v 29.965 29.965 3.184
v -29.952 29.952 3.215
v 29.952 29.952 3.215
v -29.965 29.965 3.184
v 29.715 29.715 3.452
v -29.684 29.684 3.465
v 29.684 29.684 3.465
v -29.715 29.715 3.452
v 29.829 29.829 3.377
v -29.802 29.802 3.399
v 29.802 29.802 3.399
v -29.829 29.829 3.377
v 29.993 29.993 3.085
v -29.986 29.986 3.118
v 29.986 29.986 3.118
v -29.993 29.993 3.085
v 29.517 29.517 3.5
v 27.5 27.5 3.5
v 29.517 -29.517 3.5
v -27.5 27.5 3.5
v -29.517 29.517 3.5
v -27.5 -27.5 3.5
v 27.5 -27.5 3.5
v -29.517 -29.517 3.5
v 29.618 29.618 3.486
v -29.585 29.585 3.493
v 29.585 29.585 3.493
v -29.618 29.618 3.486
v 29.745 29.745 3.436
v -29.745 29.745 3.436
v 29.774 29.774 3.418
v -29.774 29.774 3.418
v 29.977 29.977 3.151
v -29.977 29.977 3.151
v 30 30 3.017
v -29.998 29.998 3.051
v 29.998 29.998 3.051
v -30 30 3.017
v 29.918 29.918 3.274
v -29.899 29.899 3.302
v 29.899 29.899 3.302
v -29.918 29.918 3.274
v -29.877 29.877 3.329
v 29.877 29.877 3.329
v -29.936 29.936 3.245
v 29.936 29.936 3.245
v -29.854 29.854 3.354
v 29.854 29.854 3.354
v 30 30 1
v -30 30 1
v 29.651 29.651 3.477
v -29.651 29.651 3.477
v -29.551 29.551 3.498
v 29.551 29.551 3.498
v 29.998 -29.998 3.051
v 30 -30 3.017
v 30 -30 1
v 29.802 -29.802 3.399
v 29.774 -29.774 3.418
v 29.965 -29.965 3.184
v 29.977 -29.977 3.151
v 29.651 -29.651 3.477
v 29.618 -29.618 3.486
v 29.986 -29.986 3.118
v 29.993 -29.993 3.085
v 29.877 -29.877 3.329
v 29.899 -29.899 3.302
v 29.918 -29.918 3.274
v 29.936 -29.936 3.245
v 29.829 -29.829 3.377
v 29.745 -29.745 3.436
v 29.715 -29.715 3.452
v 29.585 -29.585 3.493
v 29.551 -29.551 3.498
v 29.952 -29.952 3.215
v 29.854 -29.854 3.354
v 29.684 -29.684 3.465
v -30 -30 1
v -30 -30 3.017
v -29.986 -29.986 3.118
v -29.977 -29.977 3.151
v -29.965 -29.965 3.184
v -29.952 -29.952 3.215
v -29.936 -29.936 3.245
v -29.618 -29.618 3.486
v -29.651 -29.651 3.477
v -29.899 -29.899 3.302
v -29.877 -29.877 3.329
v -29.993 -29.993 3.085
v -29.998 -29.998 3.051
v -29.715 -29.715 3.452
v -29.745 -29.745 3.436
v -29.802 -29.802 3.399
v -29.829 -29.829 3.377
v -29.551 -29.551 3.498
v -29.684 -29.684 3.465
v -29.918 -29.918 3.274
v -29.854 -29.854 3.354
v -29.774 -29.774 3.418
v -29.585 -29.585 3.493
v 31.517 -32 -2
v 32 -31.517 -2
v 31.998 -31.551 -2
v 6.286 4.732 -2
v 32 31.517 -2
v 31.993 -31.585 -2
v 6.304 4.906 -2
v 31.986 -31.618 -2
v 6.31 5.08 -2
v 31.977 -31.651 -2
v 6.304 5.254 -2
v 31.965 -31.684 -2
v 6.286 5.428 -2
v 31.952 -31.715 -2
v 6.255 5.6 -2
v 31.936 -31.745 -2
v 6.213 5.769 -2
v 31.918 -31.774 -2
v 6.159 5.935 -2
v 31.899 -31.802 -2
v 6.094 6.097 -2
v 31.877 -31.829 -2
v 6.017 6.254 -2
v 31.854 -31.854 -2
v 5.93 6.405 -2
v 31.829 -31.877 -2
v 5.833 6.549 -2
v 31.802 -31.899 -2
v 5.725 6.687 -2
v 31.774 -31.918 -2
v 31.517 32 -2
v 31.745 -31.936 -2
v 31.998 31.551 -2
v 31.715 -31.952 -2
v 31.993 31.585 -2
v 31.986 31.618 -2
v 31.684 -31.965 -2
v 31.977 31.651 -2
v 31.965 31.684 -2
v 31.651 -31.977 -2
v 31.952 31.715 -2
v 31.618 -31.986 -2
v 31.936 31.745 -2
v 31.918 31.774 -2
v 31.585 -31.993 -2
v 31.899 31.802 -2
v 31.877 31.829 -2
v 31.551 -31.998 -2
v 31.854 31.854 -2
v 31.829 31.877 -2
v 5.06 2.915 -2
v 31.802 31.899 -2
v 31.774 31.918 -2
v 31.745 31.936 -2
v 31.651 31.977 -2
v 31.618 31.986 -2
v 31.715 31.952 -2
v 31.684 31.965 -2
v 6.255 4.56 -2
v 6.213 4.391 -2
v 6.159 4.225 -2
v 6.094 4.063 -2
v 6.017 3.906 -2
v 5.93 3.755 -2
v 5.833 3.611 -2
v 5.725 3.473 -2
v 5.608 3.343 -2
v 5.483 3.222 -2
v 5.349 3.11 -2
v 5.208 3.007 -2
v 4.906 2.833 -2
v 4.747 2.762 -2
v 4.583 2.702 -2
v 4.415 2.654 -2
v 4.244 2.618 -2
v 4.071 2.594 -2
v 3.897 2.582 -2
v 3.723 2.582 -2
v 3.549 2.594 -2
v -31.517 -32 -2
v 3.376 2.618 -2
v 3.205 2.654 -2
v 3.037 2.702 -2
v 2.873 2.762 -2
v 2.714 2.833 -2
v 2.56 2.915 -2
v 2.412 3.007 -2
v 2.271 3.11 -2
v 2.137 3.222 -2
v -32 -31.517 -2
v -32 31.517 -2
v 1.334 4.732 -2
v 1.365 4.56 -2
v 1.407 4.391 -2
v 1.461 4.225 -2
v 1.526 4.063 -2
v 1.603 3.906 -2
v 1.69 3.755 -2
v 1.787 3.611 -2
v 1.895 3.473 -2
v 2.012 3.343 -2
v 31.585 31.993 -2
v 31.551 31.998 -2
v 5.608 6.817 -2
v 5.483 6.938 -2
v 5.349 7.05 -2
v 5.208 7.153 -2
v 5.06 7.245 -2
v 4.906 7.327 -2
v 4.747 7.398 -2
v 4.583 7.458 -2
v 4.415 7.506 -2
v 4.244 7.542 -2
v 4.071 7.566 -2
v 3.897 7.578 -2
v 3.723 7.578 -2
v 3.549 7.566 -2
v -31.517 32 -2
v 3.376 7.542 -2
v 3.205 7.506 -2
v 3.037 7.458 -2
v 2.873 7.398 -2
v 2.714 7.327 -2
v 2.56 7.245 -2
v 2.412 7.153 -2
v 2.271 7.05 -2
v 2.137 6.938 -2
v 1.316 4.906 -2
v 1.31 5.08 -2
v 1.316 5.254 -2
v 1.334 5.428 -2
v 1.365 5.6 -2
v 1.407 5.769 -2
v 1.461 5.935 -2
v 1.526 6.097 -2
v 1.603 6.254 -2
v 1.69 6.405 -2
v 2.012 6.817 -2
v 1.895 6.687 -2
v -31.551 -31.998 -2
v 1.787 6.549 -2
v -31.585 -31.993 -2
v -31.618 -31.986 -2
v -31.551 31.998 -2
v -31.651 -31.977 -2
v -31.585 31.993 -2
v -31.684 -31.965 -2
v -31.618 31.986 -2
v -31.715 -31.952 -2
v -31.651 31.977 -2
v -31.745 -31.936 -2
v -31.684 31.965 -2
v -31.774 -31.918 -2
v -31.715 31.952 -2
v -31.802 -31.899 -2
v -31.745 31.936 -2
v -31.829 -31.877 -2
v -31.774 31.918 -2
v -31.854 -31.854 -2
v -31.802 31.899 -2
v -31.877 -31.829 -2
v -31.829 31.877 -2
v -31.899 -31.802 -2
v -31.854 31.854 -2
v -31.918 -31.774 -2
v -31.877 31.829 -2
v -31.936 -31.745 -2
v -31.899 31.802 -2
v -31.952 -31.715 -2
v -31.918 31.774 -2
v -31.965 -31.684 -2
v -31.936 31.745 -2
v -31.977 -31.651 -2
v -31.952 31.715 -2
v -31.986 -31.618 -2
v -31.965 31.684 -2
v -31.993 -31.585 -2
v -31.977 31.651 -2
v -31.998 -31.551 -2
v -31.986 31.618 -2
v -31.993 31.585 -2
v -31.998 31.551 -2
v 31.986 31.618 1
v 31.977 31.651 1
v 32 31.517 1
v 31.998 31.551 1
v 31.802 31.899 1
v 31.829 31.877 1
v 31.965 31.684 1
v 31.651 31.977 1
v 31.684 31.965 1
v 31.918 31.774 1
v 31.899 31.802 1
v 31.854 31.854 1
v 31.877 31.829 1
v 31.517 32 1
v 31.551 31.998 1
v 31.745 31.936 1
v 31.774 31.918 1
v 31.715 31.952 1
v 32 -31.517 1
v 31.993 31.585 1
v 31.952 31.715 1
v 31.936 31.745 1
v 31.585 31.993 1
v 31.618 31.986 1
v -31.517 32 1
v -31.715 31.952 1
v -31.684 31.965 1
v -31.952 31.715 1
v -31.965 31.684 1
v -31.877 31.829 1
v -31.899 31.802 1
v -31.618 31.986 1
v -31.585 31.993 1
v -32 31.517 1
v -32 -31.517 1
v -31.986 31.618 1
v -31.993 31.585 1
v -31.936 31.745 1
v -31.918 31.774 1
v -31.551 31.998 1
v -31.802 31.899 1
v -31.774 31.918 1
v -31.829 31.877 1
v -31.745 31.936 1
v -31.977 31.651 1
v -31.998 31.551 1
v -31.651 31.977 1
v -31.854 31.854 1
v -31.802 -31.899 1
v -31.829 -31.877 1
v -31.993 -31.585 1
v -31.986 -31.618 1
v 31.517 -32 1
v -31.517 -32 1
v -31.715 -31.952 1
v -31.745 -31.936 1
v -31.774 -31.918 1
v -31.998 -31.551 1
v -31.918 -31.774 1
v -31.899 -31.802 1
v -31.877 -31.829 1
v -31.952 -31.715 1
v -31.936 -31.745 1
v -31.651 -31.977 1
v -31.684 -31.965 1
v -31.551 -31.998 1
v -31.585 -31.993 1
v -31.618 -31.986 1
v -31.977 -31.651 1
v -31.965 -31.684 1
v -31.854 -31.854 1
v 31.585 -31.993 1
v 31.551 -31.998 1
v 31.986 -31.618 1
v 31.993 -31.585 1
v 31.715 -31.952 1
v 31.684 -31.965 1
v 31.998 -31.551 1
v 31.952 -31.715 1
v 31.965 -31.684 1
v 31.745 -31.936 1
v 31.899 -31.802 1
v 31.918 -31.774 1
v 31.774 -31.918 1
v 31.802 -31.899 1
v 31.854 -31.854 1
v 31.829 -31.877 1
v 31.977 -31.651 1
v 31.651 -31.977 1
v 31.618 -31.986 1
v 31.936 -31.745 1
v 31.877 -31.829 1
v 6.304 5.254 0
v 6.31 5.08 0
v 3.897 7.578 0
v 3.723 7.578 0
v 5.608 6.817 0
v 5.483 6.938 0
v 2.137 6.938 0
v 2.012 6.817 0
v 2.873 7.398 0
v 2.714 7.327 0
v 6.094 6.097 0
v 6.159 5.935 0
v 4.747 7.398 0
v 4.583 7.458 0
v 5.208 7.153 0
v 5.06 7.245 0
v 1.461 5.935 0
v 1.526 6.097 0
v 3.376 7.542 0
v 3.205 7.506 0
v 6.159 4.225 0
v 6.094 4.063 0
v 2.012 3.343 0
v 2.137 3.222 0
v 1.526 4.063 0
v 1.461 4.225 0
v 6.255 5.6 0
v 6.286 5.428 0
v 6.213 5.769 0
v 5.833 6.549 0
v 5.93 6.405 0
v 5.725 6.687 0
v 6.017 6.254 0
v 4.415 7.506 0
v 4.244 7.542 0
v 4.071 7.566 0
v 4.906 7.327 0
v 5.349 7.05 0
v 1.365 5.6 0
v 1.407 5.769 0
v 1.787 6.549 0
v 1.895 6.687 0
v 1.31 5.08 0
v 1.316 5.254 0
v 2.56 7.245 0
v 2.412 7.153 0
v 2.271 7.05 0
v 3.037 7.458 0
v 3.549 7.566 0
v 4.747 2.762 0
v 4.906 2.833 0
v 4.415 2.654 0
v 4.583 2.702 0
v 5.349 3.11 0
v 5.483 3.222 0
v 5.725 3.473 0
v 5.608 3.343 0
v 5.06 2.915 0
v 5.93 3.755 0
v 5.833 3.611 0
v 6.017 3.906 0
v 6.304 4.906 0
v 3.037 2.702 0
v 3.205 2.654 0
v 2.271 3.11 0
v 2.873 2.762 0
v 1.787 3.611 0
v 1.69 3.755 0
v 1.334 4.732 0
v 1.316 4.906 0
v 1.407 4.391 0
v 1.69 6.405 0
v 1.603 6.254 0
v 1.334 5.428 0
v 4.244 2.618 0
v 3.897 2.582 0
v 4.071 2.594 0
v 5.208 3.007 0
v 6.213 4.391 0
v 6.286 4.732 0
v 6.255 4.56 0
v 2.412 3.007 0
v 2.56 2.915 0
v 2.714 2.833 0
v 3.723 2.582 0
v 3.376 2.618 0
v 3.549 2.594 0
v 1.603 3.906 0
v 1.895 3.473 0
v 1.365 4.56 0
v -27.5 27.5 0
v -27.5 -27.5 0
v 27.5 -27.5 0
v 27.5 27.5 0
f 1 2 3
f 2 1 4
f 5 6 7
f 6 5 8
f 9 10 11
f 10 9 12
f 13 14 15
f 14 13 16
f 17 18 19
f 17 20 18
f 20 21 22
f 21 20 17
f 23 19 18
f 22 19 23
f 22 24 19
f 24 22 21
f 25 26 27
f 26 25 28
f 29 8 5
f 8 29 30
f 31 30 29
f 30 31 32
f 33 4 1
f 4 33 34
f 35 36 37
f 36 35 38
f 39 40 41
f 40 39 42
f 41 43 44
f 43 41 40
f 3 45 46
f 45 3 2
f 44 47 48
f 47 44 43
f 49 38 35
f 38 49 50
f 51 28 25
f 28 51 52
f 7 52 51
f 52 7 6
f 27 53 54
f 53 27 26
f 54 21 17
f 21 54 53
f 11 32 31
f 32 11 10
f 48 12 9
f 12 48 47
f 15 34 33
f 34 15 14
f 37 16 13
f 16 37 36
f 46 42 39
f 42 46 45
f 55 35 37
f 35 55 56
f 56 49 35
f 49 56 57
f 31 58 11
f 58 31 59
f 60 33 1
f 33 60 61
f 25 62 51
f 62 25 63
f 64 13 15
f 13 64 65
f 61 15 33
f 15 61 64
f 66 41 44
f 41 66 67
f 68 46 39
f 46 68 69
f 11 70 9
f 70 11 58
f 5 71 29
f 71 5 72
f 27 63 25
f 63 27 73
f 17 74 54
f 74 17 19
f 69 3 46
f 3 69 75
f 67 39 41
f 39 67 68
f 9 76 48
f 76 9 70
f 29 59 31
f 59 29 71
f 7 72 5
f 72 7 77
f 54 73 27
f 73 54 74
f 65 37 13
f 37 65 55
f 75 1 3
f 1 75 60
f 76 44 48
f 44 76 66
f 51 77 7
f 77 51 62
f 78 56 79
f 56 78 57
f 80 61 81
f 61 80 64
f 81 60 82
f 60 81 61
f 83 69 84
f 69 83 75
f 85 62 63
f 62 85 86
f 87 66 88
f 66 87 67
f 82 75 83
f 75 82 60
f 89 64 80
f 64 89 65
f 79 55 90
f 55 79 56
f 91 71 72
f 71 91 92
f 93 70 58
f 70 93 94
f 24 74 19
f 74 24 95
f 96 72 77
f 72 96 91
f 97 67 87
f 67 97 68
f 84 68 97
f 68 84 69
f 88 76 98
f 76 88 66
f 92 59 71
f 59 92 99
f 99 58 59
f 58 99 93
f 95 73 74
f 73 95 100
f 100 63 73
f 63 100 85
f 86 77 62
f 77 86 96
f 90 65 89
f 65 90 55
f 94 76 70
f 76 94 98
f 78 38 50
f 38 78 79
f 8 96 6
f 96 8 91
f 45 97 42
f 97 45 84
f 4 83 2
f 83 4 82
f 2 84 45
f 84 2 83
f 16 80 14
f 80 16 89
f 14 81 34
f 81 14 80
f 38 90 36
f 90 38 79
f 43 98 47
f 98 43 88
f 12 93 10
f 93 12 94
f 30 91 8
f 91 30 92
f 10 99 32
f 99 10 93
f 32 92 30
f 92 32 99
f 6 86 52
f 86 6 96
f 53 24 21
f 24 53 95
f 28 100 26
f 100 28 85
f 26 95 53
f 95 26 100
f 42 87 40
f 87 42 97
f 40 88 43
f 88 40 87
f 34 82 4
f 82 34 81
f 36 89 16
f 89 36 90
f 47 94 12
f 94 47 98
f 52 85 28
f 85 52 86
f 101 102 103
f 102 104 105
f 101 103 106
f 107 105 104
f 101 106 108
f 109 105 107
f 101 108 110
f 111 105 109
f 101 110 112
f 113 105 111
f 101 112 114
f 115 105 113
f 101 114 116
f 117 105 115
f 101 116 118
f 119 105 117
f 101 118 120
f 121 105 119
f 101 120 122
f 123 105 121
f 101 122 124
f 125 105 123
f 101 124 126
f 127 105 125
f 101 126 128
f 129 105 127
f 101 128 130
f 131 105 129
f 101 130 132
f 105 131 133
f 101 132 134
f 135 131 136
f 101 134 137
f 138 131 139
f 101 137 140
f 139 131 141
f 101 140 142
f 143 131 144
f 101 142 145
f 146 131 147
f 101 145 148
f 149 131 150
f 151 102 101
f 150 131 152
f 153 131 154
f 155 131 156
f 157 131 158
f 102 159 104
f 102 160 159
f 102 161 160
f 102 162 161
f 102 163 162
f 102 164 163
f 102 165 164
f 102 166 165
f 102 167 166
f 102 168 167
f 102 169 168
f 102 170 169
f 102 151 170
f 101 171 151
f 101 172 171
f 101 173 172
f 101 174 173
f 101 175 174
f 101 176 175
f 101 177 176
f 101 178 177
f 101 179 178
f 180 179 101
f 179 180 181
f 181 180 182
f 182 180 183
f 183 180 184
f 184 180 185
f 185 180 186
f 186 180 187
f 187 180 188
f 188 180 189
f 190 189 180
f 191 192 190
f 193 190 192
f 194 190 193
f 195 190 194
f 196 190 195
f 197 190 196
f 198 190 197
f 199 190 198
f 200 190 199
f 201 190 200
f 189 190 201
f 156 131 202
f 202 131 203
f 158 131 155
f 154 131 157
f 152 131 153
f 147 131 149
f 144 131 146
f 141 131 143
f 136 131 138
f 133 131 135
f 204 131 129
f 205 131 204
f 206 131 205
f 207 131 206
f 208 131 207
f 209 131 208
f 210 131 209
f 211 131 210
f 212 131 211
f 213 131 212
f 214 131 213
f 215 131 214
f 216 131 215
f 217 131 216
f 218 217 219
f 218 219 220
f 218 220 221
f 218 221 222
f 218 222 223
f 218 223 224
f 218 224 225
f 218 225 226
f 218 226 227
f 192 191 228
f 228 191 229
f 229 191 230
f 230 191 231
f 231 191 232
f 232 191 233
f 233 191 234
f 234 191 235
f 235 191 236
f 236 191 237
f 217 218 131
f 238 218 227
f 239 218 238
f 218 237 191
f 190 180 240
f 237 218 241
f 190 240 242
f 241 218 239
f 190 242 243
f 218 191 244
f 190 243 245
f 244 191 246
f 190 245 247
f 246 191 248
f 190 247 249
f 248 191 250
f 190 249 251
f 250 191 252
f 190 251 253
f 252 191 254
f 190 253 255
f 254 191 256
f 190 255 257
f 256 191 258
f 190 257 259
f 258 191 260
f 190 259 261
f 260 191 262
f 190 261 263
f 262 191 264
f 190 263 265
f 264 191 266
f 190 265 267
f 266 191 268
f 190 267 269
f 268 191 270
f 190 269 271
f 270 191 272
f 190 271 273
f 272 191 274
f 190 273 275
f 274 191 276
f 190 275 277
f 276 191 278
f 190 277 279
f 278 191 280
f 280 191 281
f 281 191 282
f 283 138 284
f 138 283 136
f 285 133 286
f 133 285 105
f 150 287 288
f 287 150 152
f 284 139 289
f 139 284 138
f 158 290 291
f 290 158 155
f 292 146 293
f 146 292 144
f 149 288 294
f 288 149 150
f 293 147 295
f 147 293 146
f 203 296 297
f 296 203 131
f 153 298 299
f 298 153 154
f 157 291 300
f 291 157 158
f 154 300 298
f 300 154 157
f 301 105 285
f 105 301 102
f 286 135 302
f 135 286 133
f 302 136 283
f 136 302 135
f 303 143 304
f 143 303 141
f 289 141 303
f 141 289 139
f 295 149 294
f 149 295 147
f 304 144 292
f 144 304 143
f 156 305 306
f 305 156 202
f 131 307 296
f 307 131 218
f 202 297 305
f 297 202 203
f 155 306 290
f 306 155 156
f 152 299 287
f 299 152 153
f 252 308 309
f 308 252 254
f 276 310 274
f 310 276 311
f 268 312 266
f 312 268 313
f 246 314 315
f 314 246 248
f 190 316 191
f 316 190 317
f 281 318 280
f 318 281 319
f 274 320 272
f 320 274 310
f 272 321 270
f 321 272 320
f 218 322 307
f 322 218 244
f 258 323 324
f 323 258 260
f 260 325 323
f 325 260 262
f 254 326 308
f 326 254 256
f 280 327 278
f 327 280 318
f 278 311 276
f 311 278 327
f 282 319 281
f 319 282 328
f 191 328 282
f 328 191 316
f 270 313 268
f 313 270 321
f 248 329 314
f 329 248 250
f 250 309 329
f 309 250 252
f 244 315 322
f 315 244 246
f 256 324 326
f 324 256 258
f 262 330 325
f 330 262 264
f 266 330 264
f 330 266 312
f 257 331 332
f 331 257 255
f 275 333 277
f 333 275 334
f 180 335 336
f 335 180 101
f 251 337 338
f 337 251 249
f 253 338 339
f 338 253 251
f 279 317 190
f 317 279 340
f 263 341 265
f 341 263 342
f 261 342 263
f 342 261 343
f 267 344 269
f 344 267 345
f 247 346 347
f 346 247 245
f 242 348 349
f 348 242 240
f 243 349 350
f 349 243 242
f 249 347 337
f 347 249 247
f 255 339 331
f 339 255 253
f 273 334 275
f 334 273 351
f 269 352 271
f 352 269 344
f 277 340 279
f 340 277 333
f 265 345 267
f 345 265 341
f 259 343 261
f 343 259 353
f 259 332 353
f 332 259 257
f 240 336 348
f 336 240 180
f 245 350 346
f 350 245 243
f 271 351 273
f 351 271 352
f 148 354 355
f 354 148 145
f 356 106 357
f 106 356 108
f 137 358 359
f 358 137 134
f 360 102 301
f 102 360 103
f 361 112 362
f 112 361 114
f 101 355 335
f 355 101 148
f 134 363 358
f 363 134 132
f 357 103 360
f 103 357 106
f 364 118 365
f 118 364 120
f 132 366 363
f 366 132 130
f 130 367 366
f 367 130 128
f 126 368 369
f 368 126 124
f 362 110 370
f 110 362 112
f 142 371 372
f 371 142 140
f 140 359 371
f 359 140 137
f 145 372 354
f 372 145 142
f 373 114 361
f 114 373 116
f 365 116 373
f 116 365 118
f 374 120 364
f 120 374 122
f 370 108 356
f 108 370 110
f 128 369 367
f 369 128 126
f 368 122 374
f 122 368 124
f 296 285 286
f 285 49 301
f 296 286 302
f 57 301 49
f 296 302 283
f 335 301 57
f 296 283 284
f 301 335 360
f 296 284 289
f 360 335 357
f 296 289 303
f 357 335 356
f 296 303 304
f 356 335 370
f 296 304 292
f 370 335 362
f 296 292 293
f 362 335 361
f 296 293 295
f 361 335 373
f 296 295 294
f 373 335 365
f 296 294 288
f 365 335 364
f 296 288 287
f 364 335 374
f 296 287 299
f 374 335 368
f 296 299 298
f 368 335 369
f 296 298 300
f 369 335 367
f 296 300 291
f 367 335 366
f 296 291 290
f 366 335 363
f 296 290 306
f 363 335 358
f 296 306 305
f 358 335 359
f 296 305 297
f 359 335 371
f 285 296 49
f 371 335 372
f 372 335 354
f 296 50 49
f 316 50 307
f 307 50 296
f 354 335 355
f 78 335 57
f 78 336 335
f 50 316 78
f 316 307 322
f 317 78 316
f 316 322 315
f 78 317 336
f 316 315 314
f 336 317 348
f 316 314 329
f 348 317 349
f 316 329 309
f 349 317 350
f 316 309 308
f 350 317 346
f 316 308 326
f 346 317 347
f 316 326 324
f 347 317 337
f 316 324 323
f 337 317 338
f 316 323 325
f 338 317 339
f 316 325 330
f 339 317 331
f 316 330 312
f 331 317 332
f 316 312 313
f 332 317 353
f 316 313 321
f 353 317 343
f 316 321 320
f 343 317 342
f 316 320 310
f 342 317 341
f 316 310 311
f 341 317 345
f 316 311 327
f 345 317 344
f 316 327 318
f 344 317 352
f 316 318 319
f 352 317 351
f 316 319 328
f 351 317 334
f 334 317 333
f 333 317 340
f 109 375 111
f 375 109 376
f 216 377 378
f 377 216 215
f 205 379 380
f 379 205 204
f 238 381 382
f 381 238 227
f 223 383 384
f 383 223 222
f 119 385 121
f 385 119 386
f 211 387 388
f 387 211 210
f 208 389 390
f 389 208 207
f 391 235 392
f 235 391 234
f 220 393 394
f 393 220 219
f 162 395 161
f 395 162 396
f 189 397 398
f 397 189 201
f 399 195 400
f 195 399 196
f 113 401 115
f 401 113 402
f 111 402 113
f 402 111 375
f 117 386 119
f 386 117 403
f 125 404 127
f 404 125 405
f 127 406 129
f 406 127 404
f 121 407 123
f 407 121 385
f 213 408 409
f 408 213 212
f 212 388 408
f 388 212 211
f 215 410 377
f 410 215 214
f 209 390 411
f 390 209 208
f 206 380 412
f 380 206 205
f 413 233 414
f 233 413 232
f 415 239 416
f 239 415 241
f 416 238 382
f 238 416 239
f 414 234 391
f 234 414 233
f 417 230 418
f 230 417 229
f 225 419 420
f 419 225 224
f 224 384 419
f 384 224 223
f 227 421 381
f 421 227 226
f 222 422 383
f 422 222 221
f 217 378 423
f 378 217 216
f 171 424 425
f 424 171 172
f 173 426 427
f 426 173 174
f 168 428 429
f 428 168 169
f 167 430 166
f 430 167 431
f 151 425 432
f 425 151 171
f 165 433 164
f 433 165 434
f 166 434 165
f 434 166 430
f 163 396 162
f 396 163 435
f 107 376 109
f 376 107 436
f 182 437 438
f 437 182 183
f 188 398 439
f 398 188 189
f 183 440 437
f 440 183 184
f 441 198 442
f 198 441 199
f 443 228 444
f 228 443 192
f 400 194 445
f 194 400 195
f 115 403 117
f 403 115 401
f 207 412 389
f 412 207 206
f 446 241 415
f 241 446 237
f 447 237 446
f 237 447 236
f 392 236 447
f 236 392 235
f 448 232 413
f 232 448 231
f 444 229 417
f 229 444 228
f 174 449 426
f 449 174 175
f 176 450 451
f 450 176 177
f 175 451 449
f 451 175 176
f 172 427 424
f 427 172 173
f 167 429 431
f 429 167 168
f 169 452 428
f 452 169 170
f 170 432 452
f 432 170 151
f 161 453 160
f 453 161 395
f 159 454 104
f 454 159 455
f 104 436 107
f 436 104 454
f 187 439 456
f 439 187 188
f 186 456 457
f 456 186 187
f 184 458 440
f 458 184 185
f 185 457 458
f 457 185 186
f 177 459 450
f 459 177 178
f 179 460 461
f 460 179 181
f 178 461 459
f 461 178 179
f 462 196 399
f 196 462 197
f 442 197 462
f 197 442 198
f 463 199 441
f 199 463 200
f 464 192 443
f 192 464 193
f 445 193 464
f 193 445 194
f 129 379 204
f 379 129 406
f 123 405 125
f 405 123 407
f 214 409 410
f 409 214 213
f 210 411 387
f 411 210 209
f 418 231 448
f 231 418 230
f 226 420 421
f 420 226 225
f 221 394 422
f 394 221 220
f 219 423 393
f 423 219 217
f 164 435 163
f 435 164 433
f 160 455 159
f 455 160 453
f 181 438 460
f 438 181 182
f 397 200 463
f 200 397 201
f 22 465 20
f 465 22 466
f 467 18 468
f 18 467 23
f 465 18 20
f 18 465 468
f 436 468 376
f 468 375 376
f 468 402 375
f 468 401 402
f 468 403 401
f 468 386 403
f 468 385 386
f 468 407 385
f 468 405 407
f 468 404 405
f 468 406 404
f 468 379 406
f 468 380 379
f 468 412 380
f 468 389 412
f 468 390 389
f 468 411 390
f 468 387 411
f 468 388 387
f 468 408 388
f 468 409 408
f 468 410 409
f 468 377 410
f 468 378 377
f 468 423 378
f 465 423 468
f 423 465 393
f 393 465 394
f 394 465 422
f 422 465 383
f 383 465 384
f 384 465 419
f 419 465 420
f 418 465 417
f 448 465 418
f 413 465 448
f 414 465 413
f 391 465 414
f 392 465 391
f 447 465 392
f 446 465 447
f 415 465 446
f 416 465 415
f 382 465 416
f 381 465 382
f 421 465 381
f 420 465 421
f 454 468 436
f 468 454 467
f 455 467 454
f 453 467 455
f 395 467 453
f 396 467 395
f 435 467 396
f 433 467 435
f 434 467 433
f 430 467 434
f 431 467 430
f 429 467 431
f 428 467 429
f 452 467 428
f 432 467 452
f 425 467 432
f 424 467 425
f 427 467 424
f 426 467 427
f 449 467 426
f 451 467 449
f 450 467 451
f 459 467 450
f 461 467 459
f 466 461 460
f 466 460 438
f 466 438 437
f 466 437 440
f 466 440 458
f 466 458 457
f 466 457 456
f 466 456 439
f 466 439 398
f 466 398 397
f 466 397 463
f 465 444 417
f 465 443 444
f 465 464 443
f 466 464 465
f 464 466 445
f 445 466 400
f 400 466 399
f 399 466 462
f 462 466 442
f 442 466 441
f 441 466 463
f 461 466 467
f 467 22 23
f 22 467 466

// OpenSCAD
/*
 * Power Alert Board Enclosure Lid
 */

include <BOSL/constants.scad>
use <BOSL/shapes.scad>
use <BOSL/transforms.scad>

include <common.scad>

lid_height   = 3.0;
lid_overlap  = 2.5;
lid_overlaps = 5.0;

$fn = 90;

// build it

color(box_color)
lid();

//---------------------

// modules

module lid() {
  difference() {
    down(wall_thickness) {
      difference() {
        union() {
          cuboid([base_x, base_y, lid_height+lid_overlap],
                 align=V_TOP, fillet=0.5, edges=EDGES_TOP);
          cuboid([base_x+walls, base_y+walls, lid_height],
                 align=V_TOP, fillet=0.5,
                 edges=EDGES_Z_ALL);
        }
        led_hole(-led_dx, led_dy, -1); // flip on Y-axis
      }
    }

    cuboid([base_x-lid_overlaps, base_y-lid_overlaps,
            lid_height+lid_overlap],
           align=V_TOP);
  }
}

module led_hole (dx, dy, dz) {
  translate([dx, dy, dz])
  cyl(d=led_dia, h=wall_thickness+2, align=V_TOP);
}
